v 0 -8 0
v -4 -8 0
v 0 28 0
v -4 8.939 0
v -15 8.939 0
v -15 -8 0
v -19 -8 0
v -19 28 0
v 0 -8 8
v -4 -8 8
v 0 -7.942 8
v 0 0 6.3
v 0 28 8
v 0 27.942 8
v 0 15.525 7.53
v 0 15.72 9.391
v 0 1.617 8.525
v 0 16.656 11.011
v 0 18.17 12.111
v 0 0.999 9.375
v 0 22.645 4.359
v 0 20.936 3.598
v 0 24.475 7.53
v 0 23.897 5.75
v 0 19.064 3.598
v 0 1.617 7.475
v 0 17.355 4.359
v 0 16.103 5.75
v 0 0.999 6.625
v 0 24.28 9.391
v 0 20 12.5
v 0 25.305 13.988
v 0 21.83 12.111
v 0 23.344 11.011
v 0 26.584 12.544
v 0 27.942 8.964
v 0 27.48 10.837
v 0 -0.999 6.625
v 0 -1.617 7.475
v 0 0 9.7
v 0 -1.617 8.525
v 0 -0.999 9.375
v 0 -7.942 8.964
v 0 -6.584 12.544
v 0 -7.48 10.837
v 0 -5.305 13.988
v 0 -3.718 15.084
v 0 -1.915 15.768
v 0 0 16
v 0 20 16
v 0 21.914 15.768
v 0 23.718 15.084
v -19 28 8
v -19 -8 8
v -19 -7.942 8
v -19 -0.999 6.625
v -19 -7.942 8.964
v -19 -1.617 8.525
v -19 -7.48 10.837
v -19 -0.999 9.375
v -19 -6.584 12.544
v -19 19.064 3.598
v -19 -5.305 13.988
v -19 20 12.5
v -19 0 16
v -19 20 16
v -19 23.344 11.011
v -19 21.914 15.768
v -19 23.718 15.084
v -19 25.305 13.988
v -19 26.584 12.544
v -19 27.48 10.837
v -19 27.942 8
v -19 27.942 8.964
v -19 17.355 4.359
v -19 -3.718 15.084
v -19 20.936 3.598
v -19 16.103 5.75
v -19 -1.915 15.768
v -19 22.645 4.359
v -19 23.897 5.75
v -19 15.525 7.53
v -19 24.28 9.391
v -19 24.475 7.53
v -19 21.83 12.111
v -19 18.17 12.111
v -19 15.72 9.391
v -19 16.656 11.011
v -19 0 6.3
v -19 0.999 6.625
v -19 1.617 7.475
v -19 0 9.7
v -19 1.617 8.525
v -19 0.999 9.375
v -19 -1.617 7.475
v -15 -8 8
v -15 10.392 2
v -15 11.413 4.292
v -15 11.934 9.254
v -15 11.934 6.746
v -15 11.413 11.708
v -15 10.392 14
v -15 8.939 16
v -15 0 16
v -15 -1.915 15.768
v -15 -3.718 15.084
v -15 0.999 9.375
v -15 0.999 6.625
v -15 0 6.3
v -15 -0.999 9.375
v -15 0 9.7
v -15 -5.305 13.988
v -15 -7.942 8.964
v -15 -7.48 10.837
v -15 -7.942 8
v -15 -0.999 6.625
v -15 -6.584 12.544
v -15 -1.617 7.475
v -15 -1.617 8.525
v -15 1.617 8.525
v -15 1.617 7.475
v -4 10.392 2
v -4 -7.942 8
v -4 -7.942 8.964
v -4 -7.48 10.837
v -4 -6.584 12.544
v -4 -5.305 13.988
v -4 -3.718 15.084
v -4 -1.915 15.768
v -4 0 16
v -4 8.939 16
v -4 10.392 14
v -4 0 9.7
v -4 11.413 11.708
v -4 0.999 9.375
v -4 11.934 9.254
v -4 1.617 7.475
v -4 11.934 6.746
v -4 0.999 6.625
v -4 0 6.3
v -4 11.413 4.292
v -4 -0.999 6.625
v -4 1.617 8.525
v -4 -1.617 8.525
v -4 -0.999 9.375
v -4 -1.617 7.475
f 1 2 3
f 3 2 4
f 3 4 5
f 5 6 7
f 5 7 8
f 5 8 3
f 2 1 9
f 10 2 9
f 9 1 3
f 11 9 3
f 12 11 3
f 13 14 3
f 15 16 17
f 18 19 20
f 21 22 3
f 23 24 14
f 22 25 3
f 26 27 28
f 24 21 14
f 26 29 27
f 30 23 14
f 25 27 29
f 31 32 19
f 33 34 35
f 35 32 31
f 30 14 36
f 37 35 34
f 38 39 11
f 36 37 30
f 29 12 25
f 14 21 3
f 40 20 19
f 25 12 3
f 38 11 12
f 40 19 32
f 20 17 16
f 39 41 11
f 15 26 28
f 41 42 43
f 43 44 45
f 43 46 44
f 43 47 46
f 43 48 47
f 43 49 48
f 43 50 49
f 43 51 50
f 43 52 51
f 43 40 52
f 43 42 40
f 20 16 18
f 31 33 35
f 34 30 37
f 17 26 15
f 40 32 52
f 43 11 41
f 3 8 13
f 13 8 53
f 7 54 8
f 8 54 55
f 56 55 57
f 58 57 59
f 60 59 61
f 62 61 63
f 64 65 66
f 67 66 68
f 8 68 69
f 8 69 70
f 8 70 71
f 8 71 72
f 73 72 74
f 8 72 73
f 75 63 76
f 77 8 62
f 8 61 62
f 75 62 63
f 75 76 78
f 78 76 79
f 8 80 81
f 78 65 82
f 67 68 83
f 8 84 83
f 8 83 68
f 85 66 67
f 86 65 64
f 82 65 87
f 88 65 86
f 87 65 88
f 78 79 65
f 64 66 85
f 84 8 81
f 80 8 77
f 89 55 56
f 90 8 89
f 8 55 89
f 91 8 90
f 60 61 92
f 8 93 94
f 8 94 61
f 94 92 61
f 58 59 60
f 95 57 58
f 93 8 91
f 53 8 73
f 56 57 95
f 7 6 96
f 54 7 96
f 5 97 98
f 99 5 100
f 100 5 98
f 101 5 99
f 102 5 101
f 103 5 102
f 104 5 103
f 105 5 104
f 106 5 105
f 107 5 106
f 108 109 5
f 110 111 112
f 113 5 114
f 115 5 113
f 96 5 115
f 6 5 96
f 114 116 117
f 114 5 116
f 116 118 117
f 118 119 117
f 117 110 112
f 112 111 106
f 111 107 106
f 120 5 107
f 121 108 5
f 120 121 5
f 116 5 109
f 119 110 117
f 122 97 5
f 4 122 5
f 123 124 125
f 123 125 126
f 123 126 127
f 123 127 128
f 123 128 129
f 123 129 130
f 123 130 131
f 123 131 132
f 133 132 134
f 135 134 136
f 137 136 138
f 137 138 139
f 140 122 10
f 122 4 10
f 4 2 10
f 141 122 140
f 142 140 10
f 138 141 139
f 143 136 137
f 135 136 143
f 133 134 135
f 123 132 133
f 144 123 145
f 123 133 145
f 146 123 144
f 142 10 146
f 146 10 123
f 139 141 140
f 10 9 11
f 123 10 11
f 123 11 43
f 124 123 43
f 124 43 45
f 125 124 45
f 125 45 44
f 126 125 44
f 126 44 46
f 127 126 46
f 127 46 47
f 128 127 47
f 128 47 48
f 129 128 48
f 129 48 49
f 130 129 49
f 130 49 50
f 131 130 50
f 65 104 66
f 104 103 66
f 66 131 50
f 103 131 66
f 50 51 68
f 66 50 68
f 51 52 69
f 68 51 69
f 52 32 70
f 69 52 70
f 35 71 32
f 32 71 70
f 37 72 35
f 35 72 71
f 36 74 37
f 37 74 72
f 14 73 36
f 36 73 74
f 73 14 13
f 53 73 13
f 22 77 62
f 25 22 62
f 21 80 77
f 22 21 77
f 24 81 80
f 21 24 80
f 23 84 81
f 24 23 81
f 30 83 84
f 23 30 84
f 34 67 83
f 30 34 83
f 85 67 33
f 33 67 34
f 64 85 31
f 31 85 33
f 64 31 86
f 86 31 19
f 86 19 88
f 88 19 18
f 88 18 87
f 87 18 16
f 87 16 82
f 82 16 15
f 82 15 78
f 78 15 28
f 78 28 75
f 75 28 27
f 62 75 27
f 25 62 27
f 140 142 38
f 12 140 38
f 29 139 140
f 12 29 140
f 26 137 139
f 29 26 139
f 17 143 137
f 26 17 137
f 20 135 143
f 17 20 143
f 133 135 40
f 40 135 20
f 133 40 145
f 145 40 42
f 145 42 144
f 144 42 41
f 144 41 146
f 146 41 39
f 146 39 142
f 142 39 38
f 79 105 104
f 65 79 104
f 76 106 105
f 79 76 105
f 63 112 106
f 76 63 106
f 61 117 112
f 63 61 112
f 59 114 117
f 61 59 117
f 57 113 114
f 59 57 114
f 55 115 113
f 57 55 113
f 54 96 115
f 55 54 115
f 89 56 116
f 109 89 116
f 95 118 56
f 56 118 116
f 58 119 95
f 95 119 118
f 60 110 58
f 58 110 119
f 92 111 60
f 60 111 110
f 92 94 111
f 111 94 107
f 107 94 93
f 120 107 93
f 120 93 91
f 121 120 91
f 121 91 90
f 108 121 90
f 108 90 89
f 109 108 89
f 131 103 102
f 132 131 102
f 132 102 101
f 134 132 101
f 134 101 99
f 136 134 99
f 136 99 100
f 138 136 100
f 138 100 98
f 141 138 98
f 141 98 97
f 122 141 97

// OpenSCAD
// file: inc/inc/functions.scad
// PRUSA iteration3
// Functions used in many files
// GNU GPL v3
// Josef Průša <josefprusa@me.com>
// Václav 'ax' Hůla <axtheb@gmail.com>
// Vlnofka <>
// http://www.reprap.org/wiki/Prusa_Mendel
// http://github.com/prusajr/PrusaMendel

module roundcorner(diameter){
	difference(){
		cube(size = [diameter,diameter,99], center = false);
		translate(v = [diameter, diameter, 0]) cylinder(h = 100, r=diameter, center=true);
	}
}
module nut(d,h,horizontal=true){
    cornerdiameter =  (d / 2) / cos (180 / 6);
    cylinder(h = h, r = cornerdiameter, $fn = 6);
    if(horizontal){
        for(i = [1:6]){
            rotate([0,0,60*i]) translate([-cornerdiameter-0.2,0,0]) rotate([0,0,-45]) cube([2,2,h]);
        }
    }
}

// Based on nophead research
module polyhole(d, h, center=false) {
    n = max(round(2 * d),3);
    rotate([0,0,180])
        cylinder(h = h, r = (d / 2) / cos (180 / n), $fn = n);
}

// make it interchangeable between this and cylinder
module cylinder_poly(r, h, center=false){
    polyhole(d=r*2, h=h, center=center);
}

module fillet(radius, height=100, $fn=0) {
    //this creates acutal fillet
    translate([-radius, -radius, -height/2-0.01])
        difference() {
            cube([radius*2, radius*2, height+0.02]);
            cylinder(r=radius, h=height+0.02, $fn=$fn);
        }
}

module cube_fillet(size, radius=-1, vertical=[3,3,3,3], top=[0,0,0,0], bottom=[0,0,0,0], center=false, $fn=0){
    //
    if (center) {
        cube_fillet_inside(size, radius, vertical, top, bottom, $fn);
    } else {
        translate([size[0]/2, size[1]/2, size[2]/2])
            cube_fillet_inside(size, radius, vertical, top, bottom, $fn);
    }
}

module cube_negative_fillet(size, radius=-1, vertical=[3,3,3,3], top=[0,0,0,0], bottom=[0,0,0,0], $fn=0){

    j=[1,0,1,0];

    for (i=[0:3]) {
        if (radius > -1) {
            rotate([0, 0, 90*i]) translate([size[1-j[i]]/2, size[j[i]]/2, 0]) fillet(radius, size[2], $fn=$fn);
        } else {
            rotate([0, 0, 90*i]) translate([size[1-j[i]]/2, size[j[i]]/2, 0]) fillet(vertical[i], size[2], $fn=$fn);
        }
        rotate([90*i, -90, 0]) translate([size[2]/2, size[j[i]]/2, 0 ]) fillet(top[i], size[1-j[i]], $fn=$fn);
        rotate([90*(4-i), 90, 0]) translate([size[2]/2, size[j[i]]/2, 0]) fillet(bottom[i], size[1-j[i]], $fn=$fn);

    }
}

module cube_fillet_inside(size, radius=-1, vertical=[3,3,3,3], top=[0,0,0,0], bottom=[0,0,0,0], $fn=0){
    //makes CENTERED cube with round corners
    // if you give it radius, it will fillet vertical corners.
    //othervise use vertical, top, bottom arrays
    //when viewed from top, it starts in upper right corner (+x,+y quadrant) , goes counterclockwise
    //top/bottom fillet starts in direction of Y axis and goes CCW too


    if (radius == 0) {
        cube(size, center=true);
    } else {
        difference() {
            cube(size, center=true);
            cube_negative_fillet(size, radius, vertical, top, bottom, $fn);
        }
    }
}


module nema17(places=[1,1,1,1], size=15.5, h=10, holes=false, shadow=false, $fn=24){
    for (i=[0:3]) {
        if (places[i] == 1) {
            rotate([0, 0, 90*i]) translate([size, size, 0]) {
                if (holes) {
                    #rotate([0, 0, -90*i])  translate([0,0,-10]) screw(r=1.7, slant=false, head_drop=13, $fn=$fn, h=h+12);
                } else {
                    rotate([0, 0, -90*i]) cylinder(h=h, r=5.5, $fn=$fn);
                }
            }
        }
    }
    if (shadow != false) {
        %translate ([0, 0, shadow+21+3]) cube([42,42,42], center = true);
    //flange
        %translate ([0, 0, shadow+21+3-21-1]) cylinder(r=11,h=2, center = true, $fn=20);
    //shaft
        %translate ([0, 0, shadow+21+3-21-7]) cylinder(r=2.5,h=14, center = true);
    }
}

module screw(h=20, r=2, r_head=3.5, head_drop=0, slant=true, poly=false, $fn=0){
    //makes screw with head
    //for substraction as screw hole
    if (poly) {
        cylinder_poly(h=h, r=r, $fn=$fn);
    } else {
        cylinder(h=h, r=r, $fn=$fn);
    }
    if (slant) {
        translate([0, 0, head_drop-0.01]) cylinder(h=r_head, r2=0, r1=r_head, $fn=$fn);
    }

    if (head_drop > 0) {
        translate([0, 0, -0.01]) cylinder(h=head_drop+0.01, r=r_head, $fn=$fn);
    }
}
module screw_cylinder(r_head=5.25,r=3.25,head_drop=6.2,slant=false){
	screw(r_head=r_head,head_drop=head_drop,r=r, slant=slant);

}

//screw_cylinder();
//cube_fillet([10,20,30], vertical=[3,2,0,0], top=[3,2,0,5], bottom=[3,2,0,5]);
//cube_fillet([10,20,30], radius=2, top=[7,2,7,2]);
// file: inc/conf_bushing.scad
// PRUSA iteration3
// Bushing and bering dimensions
// GNU GPL v3
// Václav 'ax' Hůla <axtheb@gmail.com>
// http://www.reprap.org/wiki/Prusa_Mendel
// http://github.com/josefprusa/Prusa3
//

// each config is in form[r_rod, r, h, type, name] where:
//     r_rod  is smooth rod radius [0]
//     r is outer bushing radius needed for tight fit or bearing radius with loose fit [1]
//     h is barrel length [2]
//     type is 0 for linear bearings, 1 is for bushings which needs to be enclosed fully. [3]
//       type 1 may have flange, but type 0 not
//     name is human readable name [4]

//bushings
conf_b_bushing8 = [4, 5.1, 10, 1, "Tube shaped bushing like igus J(V)FM 0810-10"];
conf_b_bushing10 = [5, 6.1, 10, 1, "Tube shaped bushing with id=10mm, od=12mm and length of at least 10mm, like J(V)FM 1012-10"];
conf_b_bushing12 = [6, 7.1, 15, 1, "Tube shaped bushing with id=12mm, od=14mm and length of at least 15mm, like SF-1 1215"];

conf_b_bronze8 = [4, 8, 11, 1, "bronze self-aligning bushing, 8mm"];

//shorter beaings (two on each Z axis)
conf_b_lm8uu = [4, 7.7, 24, 0, "lm8uu bearing (standard)"];
conf_b_lm10uu = [5, 9.7, 29, 0, "lm10uu bearing (10mm smooth rod)"];
conf_b_lme8uu =[4, 8.2, 25, 0, "lme8uu bearing"];
conf_b_lm12uu = [6, 10.6, 30, 0, "lm12uu bearing (12mm smooth rod)"];

//longer bearings
conf_b_lm8luu = [4, 7.7, 45, 0, "lm8luu bearing (double length)"];
conf_b_lm10luu = [5, 9.7, 55, 0, "lm10luu bearing (10mm smooth rod, long)"];
conf_b_lm12luu = [6, 10.6, 57, 0, "lm12luu bearing (12mm, double length)"];


// Select idler bearing size **************************************************
// [outer_diameter, width, inner_diameter, uses_guide]

// roughly sorted by desirability

// one bearing with guides
// Select by availability, smaller is better.
bearing_623 = [10, 4, 3, 1, "623 bearing"];
bearing_624 = [13, 5, 4, 1, "624 bearing"];
bearing_625 = [16, 5, 5, 1, "625 bearing"];

// two bearings side by side - for use without bearing guides.
// Not recomended anymore
bearing_625_double = [16, 10, 5, 0, "625 bearing x2"];
bearing_624_double = [13, 10, 4, 0, "624 bearing x2"];
bearing_623_double = [10, 8, 3, 0, "623 bearing"];

// 608 [standard skate bearings] with bearing guide
bearing_608 = [22, 7, 8, 1, "608 bearing"];
// 608 bearings with fender washers.
// the belt brushes both against the carriage and the washers.
bearing_608_washers = [22, 10, 8, 0, "608 bearing"];



// Select Z axis threaded rod size **************************************************
// [threaded_rod_diametar, threaded_rod_hole_r, nut_diameter, rod_trap_translate, rod_trap_cube_fillet ]

z_axis_threaded_rod_type_m5 = [5, 3, 4.6, [-12, 11, 0], [20, 14, 10]];
z_axis_threaded_rod_type_m8 = [8, 4.5, (14.38+0.5)/2, [-11, 9.3, 0], [20, 16, 10]];
// file: inc/metric.scad
// PRUSA iteration3
// Default metric sizes
// GNU GPL v3
// Josef Průša <josefprusa@me.com>
// http://www.reprap.org/wiki/Prusa_Mendel
// http://github.com/prusajr/PrusaMendel

// DONT CHANGE THIS FILE! ALTER VALUES IN CONFIGURATION.SCAD INSTEAD

// RODS

threaded_rod_diameter = 8.7;
threaded_rod_diameter_horizontal = 9;
smooth_bar_diameter = 8;
smooth_bar_diameter_horizontal = 8.5;
smooth_big_bar_diameter_horizontal = 10.8;

// Nuts and bolts


m8_diameter = 9;
//iso4032 says Width across corners = 14.38
m8_nut_diameter = 14.1;

m4_diameter = 4.7;
//iso4032 says 7.66
m4_nut_diameter = 7.6;
m4_nut_diameter_horizontal = 8.15;

m3_diameter = 3.4;
//iso4032 says 6.01
m3_nut_diameter = 5.3;
m3_nut_diameter_horizontal = 6.8;
m3_washer_diameter = 6.9;

// Motors

motor_shaft = 5.5;
// file: inc/configuration.scad
// PRUSA iteration3
// Configuration file
// GNU GPL v3
// Josef Průša <josefprusa@me.com>
// Václav 'ax' Hůla <axtheb@gmail.com>
// http://www.reprap.org/wiki/Prusa_Mendel
// http://github.com/prusajr/PrusaMendel

include <metric.scad>;
include <conf_bushing.scad>;

// Custom settings here, tailor to your supplies and print settings

layer_height = 0.3;
width_over_thickness = 2.2;

// Select your belt type ******************************************************

//T2.5
belt_tooth_distance = 2.5;
belt_tooth_ratio = 0.75;

//T5 (strongly discouraged)
//belt_tooth_distance = 5;
//belt_tooth_ratio = 0.75;

//HTD3
//belt_tooth_distance = 3;
//belt_tooth_ratio = 0.75;

//MXL
//belt_tooth_distance = 2.032;
//belt_tooth_ratio = 0.64;

//GT2 there is bunch of GT2 belts with different tooth-to-tooth distance
//adjust to your needs
//belt_tooth_distance = 2;
//belt_tooth_ratio = 0.5;

// For T type belts you will probably want 0.8mm or so.
belt_thickness = 1.75;

// Choose bearing/bushing configuration ***************************************
// conf_b_* are in inc/conf_bushing.scad

bushing_xy = conf_b_lm8uu;
bushing_z = conf_b_lm8uu;
// for longer bearings use one shorter in x-carriage to make place for belt attachment
// by default use same as xy
bushing_carriage = bushing_xy;

// Select idler bearing size **************************************************
// [outer_diameter, width, inner_diameter, uses_guide]
// 608 [standard skate bearings] with bearing guide
bearing_608 = [22, 7, 8, 1];
//608 bearings with fender washers. Not good at all, the belt brushes against the carriage
bearing_608_washers = [22, 10, 8, 0];
// one 625 with guides
bearing_625 = [16, 5, 5, 1];
// two 625 - for use without bearing guides.
bearing_625_double = [16, 10, 5, 0];

// those two here are really good:
bearing_624_double = [13, 9, 4, 0];
// this one has roughly same diameter as pulley, makes belt parallel so its prettier
bearing_623_double = [10, 8, 3, 0];

idler_bearing = bearing_608;

//Select carriage lenght
// 30 for single carriage extruder (two holes with centers 30mm apart)
// 50 for wade or single with fan (three holes, 30-20)
// 80 for full length carriage (four holes, 30-20-30)

carriage_l_base = 50;

// Fillets ********************************************************************
// mostly cosmetic, except z axis.
// 0 = no fillets
// 1 = fillet

use_fillets = 1;

//set to 0 for single plate (affects z axis and screws that attach RP parts tp frame)
i_am_box = 0;

//if you do your own plate and can move bottom Z screws 5mm up set this to 0 to
//get stronger motor mount. Only for i_am_box = 0
i_want_to_use_single_plate_dxf_and_make_my_z_weaker = 1;

//radius of long threaded rod on Y frame
//Use 5.4 for M10 or 4.4 for M8
y_threaded_rod_long_r = 4.4;

// Thickness of the XZ plate board. Leave at 12 for single plate
board_thickness = 12;

// END of custom settings


// You are not supposed to change this
board_to_xz_distance = 26;
xaxis_rod_distance = 45;

//calculated from settings
single_wall_width = width_over_thickness * layer_height;

idler_width = (idler_bearing[1] > 7 ? idler_bearing[1] : 7) + 2.5 * idler_bearing[3] ;

//deltas are used to enlarge parts for bigger bearings 
xy_delta = ((bushing_xy[1] <= 7.7) ? 0 : bushing_xy[1] - 7.7) * 0.9;
z_delta = (bushing_z[1] <= 7.7) ? 0 : bushing_z[1] - 7.7;

// CHANGE ONLY THE STUFF YOU KNOW
// IT WILL REPLACE DEFAULT SETTING

// RODS

// threaded_rod_diameter = 0;
// threaded_rod_diameter_horizontal = 0;
// smooth_bar_diameter = 0;
// smooth_bar_diameter_horizontal = 0;

// Nuts and bolts

// m8_diameter = 0;
// m8_nut_diameter = 0;

// m4_diameter = 0;
// m4_nut_diameter = 0;

// m3_diameter = 0;
// m3_nut_diameter = 0;

// Bushing holder

// bushing_core_diameter = smooth_bar_diameter;
// bushing_material_thickness = 0;

///counted stuff
m3_nut_diameter_bigger = ((m3_nut_diameter  / 2) / cos (180 / 6))*2;

// functions
include <inc/functions.scad>

// These constants define the geometry of the complete-printer.scad

//x_smooth_rod_length=325;
//y_smooth_rod_length=405;
//z_smooth_rod_length=235;
bed_x_size=225;
bed_y_size=225;

x_smooth_rod_length=460+board_thickness*2; // 492 for 16mm thickness; 484 for 12mm thickness
y_smooth_rod_length=470;
z_smooth_rod_length=405;
// main file
// PRUSA iteration3
// Y idler
// GNU GPL v3
// Josef Průša <iam@josefprusa.cz> and contributors
// http://www.reprap.org/wiki/Prusa_Mendel
// http://prusamendel.org

include <inc/configuration.scad>

module y_idler_base(){
 translate(v = [0,0,0]) cylinder(h = 19, r=8);	
 translate(v = [0,20,0]) cylinder(h = 19, r=8);
 translate(v = [0,10,9.5]) cube(size = [16,20,19], center=true);
 translate(v = [-4,10,9.5]) cube(size = [8,16+20,19], center=true);
}

module y_idler_holes(){
 translate(v = [0,0,-1]) cylinder(h = 120, r=m3_diameter/2, $fn=10);	
 translate(v = [0,20,-1]) cylinder(h = 25, r=threaded_rod_diameter_horizontal/2);
 translate(v = [0,0,4]) cylinder(h = 11, r=12);
}

// Final part
module y_idler(){
 translate(v = [0,0,8])rotate([0,-90,0]) difference(){
  y_idler_base();
  y_idler_holes();
 }
}

y_idler();
